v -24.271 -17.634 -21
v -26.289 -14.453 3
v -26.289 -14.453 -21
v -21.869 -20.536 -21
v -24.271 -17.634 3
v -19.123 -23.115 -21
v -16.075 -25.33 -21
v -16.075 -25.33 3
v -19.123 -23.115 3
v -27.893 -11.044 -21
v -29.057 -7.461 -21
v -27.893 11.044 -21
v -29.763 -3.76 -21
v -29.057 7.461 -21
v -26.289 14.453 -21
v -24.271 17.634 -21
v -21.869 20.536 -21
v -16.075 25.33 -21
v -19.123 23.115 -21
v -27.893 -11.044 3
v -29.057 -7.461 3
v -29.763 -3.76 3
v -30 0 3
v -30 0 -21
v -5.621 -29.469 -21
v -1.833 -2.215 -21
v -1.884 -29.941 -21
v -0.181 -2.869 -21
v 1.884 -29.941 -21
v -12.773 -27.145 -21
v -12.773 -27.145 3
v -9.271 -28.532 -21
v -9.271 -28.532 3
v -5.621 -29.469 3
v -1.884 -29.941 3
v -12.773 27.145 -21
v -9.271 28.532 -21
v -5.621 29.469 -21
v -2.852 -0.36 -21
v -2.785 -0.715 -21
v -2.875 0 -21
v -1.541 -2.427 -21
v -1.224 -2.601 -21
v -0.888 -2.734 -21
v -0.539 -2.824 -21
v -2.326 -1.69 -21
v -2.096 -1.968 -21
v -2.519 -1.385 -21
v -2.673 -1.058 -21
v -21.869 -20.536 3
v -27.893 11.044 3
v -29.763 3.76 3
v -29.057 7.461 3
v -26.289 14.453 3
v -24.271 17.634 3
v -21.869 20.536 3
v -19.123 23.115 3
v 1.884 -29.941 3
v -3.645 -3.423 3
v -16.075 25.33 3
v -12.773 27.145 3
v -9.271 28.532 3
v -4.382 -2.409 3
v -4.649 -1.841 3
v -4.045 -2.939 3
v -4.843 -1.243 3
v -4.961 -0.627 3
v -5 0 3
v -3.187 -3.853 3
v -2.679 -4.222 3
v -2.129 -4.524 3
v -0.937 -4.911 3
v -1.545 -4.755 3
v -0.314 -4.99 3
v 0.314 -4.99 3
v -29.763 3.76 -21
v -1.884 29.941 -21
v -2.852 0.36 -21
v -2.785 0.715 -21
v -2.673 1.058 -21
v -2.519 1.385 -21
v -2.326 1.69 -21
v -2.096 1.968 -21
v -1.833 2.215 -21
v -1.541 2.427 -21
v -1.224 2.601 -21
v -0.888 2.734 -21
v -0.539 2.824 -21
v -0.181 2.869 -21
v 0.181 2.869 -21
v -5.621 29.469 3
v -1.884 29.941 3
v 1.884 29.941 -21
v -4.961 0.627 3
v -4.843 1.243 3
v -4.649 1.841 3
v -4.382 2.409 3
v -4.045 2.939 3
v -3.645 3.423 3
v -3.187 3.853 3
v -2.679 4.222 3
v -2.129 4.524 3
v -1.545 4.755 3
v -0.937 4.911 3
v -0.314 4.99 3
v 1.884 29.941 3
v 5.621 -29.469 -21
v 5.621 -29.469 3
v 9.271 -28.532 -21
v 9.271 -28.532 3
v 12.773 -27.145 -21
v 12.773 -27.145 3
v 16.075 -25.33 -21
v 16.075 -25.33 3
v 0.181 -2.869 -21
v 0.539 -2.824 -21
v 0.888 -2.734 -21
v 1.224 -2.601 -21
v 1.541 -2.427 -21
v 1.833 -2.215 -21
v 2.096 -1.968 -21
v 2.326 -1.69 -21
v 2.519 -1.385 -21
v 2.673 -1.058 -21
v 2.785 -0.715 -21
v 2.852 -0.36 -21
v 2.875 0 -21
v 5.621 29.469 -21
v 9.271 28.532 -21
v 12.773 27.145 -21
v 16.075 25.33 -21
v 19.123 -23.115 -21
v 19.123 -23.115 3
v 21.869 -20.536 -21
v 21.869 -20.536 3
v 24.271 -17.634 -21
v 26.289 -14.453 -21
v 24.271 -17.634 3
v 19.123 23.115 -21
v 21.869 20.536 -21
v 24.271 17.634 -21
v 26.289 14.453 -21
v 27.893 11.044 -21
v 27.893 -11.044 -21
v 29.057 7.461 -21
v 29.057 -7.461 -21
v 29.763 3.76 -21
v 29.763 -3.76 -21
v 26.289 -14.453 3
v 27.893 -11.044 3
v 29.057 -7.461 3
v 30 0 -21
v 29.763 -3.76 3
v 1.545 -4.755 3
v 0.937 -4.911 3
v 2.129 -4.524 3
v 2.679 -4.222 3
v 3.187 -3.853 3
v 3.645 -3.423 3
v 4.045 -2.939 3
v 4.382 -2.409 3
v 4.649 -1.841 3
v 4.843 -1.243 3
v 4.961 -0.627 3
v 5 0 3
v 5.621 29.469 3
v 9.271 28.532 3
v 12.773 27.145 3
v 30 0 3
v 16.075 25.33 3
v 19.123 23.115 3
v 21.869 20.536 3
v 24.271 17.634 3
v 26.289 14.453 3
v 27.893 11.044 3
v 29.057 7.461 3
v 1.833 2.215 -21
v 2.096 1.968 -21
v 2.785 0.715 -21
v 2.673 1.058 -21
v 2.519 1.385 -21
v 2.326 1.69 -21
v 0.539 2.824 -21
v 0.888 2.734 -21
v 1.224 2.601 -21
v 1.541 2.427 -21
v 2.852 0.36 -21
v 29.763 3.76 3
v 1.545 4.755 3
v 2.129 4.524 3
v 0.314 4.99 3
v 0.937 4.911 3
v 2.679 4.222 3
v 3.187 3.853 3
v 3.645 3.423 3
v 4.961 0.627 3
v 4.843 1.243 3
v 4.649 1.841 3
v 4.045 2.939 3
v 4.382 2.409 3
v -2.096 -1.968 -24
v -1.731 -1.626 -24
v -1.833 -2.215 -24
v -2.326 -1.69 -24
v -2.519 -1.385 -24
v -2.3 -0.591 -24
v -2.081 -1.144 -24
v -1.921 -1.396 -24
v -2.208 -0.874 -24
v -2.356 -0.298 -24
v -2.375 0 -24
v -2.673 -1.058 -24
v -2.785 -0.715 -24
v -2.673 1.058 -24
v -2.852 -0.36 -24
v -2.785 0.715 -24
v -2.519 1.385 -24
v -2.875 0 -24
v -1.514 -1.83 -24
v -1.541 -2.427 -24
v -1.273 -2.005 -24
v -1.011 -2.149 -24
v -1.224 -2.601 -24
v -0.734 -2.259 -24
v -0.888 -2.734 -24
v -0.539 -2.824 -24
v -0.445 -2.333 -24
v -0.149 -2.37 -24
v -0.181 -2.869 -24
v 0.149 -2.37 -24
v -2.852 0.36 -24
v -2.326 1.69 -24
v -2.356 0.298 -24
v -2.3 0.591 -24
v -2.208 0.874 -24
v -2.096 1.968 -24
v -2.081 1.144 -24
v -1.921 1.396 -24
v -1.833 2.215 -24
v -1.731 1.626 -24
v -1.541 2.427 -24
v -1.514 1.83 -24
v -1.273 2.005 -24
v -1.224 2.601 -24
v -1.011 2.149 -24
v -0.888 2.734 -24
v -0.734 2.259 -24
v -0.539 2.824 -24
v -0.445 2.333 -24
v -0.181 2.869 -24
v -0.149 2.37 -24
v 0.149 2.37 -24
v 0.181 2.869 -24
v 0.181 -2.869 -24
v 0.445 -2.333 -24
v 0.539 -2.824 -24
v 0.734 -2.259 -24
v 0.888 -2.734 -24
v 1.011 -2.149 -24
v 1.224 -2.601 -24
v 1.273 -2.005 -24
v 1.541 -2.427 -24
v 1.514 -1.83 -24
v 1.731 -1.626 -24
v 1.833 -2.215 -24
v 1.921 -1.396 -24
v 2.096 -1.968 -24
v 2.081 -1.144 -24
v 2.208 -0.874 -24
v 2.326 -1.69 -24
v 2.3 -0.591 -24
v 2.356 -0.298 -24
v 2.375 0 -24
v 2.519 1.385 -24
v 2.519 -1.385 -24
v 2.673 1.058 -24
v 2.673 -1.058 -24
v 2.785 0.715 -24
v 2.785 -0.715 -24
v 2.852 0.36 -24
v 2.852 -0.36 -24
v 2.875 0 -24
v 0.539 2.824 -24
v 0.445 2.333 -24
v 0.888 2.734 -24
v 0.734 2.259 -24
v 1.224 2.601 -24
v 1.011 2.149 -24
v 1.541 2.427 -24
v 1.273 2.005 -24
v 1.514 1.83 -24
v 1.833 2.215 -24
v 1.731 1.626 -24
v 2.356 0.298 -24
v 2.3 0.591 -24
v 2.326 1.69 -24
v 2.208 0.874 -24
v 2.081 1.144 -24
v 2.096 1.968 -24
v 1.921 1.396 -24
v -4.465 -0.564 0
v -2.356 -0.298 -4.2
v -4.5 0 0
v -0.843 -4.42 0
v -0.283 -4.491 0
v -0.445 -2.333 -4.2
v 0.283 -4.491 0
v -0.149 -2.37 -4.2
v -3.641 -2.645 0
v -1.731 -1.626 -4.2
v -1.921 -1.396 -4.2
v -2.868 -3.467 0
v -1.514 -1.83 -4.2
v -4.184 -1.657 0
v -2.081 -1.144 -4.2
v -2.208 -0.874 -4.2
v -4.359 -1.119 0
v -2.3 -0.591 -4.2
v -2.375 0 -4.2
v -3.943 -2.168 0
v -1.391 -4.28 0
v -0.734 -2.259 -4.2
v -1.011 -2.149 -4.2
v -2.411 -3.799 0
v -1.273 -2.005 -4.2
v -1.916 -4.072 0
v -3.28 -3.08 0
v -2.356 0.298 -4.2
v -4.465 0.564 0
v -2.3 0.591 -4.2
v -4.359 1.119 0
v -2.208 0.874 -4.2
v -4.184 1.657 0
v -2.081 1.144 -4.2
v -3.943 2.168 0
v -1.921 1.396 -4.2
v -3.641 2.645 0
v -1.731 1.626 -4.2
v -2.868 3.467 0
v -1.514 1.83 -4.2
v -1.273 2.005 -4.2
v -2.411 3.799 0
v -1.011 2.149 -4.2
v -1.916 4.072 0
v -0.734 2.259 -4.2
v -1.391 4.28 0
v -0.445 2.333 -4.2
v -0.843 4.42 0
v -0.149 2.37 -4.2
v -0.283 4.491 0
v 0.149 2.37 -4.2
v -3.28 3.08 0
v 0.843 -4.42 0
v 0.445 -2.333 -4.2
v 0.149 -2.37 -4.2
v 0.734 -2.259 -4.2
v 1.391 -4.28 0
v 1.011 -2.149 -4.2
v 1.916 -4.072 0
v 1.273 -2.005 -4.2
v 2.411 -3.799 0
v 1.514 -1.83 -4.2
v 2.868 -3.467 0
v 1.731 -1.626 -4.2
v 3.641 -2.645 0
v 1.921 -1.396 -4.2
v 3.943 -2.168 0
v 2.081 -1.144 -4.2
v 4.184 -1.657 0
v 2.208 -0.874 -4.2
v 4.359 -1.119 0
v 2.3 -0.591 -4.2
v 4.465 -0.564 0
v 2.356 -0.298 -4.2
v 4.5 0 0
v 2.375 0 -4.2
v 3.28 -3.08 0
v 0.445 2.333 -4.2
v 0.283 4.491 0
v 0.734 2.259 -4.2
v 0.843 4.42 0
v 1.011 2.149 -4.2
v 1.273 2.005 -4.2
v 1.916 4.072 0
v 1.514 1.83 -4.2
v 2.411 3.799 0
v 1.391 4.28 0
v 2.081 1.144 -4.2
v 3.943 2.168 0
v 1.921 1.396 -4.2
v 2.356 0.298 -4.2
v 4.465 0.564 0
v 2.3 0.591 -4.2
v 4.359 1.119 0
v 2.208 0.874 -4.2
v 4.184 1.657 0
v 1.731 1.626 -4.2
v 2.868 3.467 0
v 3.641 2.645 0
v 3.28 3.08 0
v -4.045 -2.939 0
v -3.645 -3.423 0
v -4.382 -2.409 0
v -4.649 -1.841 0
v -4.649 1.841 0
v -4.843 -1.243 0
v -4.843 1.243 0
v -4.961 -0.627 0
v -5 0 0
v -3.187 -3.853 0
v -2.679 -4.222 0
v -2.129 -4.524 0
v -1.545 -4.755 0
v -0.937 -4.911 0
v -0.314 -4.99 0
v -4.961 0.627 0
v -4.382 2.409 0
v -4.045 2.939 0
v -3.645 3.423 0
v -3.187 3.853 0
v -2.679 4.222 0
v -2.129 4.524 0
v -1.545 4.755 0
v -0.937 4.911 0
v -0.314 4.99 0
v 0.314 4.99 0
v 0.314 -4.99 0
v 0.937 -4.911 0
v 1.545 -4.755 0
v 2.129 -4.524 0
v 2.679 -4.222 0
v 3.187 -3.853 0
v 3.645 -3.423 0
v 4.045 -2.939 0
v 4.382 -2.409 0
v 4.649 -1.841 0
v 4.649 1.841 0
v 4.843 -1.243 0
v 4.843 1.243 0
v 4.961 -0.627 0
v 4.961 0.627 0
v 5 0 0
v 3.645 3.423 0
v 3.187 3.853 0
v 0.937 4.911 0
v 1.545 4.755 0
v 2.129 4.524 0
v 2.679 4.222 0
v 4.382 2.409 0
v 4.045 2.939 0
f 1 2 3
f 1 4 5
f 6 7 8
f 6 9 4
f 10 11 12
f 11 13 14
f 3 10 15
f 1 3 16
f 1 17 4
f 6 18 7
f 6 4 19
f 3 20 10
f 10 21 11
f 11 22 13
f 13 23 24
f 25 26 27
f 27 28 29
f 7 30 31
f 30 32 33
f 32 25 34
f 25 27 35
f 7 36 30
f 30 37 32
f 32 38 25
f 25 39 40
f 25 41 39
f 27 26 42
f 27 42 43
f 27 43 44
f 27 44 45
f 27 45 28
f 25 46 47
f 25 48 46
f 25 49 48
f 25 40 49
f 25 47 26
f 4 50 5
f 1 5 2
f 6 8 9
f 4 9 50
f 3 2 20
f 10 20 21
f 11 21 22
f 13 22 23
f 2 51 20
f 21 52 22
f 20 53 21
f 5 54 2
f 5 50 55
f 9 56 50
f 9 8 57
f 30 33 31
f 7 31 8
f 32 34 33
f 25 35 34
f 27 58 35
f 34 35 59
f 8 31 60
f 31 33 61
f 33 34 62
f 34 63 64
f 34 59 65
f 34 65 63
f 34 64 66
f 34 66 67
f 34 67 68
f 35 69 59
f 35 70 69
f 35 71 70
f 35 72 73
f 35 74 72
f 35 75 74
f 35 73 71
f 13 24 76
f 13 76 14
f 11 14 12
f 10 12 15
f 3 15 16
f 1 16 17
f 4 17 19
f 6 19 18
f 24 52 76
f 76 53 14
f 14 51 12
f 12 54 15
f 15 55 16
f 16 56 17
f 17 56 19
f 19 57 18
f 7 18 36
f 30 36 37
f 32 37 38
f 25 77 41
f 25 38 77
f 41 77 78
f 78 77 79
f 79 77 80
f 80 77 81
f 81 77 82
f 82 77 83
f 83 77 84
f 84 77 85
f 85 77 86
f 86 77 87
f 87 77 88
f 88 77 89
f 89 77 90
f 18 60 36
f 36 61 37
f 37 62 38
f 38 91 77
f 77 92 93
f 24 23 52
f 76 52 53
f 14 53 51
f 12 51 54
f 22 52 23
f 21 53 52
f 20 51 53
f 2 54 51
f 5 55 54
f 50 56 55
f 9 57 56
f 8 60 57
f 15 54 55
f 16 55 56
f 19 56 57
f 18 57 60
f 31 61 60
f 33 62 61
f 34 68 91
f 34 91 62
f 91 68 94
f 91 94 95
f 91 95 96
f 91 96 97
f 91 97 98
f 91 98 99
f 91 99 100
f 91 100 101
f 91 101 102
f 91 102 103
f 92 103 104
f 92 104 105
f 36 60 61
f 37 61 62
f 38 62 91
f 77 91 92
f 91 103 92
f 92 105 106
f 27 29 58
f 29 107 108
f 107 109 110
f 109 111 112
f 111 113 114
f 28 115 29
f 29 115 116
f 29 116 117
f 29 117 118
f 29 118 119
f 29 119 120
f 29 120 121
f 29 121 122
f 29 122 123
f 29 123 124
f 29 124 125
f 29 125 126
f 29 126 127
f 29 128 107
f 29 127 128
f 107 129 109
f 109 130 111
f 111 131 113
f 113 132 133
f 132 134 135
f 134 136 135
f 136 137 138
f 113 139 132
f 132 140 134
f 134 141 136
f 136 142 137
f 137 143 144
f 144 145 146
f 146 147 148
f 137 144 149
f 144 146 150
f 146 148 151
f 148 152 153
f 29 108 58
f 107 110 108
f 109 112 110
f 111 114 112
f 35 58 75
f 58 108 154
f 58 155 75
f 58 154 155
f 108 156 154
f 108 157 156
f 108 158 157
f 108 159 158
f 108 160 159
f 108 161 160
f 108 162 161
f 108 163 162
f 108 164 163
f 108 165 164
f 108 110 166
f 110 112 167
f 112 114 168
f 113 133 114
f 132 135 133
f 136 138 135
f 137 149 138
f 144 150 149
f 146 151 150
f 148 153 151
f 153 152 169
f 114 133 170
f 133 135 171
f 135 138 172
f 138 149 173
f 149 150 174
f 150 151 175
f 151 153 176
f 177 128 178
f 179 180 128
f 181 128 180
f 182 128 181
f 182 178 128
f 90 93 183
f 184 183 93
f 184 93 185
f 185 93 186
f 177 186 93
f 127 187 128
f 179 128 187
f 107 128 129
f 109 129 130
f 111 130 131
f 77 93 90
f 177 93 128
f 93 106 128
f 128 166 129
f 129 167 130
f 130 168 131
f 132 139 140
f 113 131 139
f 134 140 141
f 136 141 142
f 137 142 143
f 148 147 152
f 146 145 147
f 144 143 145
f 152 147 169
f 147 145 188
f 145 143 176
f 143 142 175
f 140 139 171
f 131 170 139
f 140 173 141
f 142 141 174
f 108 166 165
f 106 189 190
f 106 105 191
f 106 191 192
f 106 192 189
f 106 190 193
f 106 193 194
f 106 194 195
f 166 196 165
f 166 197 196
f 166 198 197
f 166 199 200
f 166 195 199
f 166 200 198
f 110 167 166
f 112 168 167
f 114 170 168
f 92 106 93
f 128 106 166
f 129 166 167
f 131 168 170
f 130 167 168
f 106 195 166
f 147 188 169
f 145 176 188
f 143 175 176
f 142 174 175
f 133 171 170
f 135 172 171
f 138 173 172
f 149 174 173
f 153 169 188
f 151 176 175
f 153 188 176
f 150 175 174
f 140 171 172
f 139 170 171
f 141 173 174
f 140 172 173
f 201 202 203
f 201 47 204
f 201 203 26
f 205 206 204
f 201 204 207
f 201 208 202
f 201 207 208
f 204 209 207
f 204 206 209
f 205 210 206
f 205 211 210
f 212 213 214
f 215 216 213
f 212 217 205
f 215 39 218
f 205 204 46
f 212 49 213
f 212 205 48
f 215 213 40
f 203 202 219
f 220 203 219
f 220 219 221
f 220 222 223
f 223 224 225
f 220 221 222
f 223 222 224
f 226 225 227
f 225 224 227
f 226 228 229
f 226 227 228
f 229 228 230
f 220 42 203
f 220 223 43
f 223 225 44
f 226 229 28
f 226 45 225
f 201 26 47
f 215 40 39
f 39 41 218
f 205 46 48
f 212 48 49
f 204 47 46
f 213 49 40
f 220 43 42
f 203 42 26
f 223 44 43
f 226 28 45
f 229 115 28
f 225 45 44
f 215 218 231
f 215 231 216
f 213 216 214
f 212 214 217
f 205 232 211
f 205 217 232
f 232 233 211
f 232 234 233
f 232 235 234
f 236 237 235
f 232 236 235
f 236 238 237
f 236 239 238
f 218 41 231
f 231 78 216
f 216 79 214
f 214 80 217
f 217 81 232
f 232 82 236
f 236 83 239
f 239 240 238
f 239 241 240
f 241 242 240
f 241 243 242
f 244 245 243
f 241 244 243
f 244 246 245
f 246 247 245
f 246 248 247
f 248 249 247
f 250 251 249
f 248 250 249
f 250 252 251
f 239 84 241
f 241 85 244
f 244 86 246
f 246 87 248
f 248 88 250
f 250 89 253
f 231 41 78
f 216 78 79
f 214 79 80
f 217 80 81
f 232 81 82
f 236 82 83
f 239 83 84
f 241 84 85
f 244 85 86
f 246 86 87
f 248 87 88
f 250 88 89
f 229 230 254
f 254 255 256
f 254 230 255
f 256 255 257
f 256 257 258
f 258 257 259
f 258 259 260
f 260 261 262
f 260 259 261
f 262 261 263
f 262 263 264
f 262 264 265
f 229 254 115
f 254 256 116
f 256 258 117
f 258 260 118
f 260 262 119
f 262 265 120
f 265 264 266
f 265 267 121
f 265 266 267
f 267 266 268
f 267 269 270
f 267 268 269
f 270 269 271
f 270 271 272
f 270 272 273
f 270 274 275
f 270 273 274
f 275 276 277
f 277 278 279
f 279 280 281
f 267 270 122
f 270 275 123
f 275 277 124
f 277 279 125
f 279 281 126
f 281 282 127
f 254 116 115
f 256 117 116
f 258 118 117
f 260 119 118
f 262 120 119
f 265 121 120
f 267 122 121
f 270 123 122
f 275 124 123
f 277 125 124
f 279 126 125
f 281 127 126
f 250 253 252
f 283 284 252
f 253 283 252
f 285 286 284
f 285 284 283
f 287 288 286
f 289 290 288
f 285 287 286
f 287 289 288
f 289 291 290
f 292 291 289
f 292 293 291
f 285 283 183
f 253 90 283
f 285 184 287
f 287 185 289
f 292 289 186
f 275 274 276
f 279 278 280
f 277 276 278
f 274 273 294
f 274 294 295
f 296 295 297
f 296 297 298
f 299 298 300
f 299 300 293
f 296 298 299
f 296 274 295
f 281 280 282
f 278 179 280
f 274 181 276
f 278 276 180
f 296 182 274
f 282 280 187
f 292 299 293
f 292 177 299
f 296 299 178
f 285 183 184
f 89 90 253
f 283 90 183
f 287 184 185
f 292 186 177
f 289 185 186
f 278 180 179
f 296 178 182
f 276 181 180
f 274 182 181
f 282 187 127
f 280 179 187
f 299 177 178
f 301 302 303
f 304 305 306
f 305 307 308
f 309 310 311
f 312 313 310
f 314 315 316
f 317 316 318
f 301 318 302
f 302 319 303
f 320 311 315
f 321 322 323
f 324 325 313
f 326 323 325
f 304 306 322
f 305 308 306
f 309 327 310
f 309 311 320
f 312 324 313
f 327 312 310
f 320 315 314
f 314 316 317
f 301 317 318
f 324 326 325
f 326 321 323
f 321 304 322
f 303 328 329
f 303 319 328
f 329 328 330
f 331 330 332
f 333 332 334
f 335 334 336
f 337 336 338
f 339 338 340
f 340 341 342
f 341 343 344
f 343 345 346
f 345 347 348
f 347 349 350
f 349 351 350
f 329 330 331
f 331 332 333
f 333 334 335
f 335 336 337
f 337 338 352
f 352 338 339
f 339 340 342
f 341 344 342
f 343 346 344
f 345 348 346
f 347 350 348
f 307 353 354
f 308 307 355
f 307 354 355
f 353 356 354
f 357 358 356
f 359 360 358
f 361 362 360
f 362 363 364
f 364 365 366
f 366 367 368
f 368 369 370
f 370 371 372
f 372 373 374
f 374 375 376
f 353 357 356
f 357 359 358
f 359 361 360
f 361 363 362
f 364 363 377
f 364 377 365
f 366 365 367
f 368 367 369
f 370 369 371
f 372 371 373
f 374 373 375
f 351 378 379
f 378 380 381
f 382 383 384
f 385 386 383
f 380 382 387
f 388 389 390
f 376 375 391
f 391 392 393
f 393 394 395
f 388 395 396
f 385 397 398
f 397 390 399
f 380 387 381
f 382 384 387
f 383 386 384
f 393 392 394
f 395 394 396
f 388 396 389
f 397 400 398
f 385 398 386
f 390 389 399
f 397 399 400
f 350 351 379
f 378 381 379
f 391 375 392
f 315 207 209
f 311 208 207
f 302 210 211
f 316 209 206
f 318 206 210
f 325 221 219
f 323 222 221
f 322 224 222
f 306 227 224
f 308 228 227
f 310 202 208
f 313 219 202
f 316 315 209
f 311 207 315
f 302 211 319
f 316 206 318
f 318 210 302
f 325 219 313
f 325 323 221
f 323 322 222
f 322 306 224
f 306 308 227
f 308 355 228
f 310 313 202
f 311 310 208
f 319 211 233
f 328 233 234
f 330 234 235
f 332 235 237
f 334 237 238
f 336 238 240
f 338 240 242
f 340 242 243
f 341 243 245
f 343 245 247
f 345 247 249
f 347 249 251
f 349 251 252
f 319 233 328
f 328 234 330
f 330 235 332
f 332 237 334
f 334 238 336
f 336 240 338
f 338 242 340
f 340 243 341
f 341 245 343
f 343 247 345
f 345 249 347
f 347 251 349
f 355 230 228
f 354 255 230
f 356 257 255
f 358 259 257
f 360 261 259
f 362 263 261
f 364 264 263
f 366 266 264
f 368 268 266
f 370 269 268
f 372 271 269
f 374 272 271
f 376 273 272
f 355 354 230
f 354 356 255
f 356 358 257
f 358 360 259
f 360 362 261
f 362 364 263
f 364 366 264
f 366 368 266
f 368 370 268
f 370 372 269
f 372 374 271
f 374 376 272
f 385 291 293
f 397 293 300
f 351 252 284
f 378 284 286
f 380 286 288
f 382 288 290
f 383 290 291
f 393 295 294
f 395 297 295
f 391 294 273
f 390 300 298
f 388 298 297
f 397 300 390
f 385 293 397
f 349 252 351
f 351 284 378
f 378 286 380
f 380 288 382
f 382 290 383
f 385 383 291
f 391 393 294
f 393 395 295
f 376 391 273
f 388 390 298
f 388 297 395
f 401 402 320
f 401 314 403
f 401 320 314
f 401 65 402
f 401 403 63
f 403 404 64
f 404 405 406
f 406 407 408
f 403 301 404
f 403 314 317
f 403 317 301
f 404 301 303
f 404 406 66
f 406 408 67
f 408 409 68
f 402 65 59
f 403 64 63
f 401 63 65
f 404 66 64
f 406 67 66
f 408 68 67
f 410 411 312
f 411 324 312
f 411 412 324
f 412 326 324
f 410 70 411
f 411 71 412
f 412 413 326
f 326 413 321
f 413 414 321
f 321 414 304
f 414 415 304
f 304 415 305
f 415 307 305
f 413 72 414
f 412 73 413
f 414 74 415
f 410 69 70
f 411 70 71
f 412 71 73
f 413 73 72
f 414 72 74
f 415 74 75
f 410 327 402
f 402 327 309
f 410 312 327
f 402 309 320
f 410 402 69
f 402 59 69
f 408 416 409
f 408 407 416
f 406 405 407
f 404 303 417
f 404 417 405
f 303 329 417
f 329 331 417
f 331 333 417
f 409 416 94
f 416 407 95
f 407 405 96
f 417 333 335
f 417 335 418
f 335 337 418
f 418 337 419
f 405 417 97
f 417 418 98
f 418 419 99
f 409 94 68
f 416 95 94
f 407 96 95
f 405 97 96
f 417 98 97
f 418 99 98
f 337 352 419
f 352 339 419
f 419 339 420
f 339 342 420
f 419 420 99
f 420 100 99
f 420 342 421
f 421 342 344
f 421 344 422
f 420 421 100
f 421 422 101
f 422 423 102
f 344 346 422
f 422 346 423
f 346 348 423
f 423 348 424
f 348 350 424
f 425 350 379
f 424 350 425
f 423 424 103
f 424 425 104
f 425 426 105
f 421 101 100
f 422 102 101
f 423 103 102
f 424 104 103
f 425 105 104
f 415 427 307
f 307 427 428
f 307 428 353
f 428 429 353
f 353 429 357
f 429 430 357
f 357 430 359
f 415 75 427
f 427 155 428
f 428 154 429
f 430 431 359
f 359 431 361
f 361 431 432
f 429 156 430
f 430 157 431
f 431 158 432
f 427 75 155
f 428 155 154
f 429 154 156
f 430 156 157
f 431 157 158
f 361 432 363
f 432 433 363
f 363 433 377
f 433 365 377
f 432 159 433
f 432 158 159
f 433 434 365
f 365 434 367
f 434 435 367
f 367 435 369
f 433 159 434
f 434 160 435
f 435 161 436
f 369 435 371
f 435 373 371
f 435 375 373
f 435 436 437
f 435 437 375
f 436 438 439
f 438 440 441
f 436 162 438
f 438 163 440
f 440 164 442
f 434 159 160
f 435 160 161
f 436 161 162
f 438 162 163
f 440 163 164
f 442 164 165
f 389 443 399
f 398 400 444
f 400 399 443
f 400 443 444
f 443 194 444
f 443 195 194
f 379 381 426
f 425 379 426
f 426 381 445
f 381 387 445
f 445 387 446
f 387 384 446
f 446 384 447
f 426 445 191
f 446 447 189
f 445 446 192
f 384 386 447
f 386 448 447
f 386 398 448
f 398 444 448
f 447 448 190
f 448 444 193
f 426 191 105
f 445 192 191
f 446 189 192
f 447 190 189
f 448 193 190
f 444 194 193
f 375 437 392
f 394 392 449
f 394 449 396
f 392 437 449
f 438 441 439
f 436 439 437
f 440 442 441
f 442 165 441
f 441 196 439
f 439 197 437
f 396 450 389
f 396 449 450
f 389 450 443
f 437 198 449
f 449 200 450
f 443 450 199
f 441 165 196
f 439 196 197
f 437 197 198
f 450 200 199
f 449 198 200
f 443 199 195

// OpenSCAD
$fn = 50;

difference() {
	union() {
		translate(v = [0, 0, -21.0]) {
			cylinder(h = 24, r = 30.0);
		}
		#translate(v = [0, 0, -24.0]) {
			cylinder(h = 24, r = 2.875);
		}
	}
	union() {
		translate(v = [0, 0, 0]) {
			rotate(a = [0, 0, 0]) {
				difference() {
					union() {
						translate(v = [0, 0, -24.0]) {
							cylinder(h = 24, r = 2.25);
						}
						translate(v = [0, 0, -4.2]) {
							cylinder(h = 4.2, r1 = 2.375, r2 = 4.5);
						}
						translate(v = [0, 0, -24.0]) {
							cylinder(h = 24, r = 2.375);
						}
						translate(v = [0, 0, -24.0]) {
							cylinder(h = 24, r = 2.25);
						}
					}
					union();
				}
			}
		}
		#cylinder(h = 3, r = 5.0);
	}
}
